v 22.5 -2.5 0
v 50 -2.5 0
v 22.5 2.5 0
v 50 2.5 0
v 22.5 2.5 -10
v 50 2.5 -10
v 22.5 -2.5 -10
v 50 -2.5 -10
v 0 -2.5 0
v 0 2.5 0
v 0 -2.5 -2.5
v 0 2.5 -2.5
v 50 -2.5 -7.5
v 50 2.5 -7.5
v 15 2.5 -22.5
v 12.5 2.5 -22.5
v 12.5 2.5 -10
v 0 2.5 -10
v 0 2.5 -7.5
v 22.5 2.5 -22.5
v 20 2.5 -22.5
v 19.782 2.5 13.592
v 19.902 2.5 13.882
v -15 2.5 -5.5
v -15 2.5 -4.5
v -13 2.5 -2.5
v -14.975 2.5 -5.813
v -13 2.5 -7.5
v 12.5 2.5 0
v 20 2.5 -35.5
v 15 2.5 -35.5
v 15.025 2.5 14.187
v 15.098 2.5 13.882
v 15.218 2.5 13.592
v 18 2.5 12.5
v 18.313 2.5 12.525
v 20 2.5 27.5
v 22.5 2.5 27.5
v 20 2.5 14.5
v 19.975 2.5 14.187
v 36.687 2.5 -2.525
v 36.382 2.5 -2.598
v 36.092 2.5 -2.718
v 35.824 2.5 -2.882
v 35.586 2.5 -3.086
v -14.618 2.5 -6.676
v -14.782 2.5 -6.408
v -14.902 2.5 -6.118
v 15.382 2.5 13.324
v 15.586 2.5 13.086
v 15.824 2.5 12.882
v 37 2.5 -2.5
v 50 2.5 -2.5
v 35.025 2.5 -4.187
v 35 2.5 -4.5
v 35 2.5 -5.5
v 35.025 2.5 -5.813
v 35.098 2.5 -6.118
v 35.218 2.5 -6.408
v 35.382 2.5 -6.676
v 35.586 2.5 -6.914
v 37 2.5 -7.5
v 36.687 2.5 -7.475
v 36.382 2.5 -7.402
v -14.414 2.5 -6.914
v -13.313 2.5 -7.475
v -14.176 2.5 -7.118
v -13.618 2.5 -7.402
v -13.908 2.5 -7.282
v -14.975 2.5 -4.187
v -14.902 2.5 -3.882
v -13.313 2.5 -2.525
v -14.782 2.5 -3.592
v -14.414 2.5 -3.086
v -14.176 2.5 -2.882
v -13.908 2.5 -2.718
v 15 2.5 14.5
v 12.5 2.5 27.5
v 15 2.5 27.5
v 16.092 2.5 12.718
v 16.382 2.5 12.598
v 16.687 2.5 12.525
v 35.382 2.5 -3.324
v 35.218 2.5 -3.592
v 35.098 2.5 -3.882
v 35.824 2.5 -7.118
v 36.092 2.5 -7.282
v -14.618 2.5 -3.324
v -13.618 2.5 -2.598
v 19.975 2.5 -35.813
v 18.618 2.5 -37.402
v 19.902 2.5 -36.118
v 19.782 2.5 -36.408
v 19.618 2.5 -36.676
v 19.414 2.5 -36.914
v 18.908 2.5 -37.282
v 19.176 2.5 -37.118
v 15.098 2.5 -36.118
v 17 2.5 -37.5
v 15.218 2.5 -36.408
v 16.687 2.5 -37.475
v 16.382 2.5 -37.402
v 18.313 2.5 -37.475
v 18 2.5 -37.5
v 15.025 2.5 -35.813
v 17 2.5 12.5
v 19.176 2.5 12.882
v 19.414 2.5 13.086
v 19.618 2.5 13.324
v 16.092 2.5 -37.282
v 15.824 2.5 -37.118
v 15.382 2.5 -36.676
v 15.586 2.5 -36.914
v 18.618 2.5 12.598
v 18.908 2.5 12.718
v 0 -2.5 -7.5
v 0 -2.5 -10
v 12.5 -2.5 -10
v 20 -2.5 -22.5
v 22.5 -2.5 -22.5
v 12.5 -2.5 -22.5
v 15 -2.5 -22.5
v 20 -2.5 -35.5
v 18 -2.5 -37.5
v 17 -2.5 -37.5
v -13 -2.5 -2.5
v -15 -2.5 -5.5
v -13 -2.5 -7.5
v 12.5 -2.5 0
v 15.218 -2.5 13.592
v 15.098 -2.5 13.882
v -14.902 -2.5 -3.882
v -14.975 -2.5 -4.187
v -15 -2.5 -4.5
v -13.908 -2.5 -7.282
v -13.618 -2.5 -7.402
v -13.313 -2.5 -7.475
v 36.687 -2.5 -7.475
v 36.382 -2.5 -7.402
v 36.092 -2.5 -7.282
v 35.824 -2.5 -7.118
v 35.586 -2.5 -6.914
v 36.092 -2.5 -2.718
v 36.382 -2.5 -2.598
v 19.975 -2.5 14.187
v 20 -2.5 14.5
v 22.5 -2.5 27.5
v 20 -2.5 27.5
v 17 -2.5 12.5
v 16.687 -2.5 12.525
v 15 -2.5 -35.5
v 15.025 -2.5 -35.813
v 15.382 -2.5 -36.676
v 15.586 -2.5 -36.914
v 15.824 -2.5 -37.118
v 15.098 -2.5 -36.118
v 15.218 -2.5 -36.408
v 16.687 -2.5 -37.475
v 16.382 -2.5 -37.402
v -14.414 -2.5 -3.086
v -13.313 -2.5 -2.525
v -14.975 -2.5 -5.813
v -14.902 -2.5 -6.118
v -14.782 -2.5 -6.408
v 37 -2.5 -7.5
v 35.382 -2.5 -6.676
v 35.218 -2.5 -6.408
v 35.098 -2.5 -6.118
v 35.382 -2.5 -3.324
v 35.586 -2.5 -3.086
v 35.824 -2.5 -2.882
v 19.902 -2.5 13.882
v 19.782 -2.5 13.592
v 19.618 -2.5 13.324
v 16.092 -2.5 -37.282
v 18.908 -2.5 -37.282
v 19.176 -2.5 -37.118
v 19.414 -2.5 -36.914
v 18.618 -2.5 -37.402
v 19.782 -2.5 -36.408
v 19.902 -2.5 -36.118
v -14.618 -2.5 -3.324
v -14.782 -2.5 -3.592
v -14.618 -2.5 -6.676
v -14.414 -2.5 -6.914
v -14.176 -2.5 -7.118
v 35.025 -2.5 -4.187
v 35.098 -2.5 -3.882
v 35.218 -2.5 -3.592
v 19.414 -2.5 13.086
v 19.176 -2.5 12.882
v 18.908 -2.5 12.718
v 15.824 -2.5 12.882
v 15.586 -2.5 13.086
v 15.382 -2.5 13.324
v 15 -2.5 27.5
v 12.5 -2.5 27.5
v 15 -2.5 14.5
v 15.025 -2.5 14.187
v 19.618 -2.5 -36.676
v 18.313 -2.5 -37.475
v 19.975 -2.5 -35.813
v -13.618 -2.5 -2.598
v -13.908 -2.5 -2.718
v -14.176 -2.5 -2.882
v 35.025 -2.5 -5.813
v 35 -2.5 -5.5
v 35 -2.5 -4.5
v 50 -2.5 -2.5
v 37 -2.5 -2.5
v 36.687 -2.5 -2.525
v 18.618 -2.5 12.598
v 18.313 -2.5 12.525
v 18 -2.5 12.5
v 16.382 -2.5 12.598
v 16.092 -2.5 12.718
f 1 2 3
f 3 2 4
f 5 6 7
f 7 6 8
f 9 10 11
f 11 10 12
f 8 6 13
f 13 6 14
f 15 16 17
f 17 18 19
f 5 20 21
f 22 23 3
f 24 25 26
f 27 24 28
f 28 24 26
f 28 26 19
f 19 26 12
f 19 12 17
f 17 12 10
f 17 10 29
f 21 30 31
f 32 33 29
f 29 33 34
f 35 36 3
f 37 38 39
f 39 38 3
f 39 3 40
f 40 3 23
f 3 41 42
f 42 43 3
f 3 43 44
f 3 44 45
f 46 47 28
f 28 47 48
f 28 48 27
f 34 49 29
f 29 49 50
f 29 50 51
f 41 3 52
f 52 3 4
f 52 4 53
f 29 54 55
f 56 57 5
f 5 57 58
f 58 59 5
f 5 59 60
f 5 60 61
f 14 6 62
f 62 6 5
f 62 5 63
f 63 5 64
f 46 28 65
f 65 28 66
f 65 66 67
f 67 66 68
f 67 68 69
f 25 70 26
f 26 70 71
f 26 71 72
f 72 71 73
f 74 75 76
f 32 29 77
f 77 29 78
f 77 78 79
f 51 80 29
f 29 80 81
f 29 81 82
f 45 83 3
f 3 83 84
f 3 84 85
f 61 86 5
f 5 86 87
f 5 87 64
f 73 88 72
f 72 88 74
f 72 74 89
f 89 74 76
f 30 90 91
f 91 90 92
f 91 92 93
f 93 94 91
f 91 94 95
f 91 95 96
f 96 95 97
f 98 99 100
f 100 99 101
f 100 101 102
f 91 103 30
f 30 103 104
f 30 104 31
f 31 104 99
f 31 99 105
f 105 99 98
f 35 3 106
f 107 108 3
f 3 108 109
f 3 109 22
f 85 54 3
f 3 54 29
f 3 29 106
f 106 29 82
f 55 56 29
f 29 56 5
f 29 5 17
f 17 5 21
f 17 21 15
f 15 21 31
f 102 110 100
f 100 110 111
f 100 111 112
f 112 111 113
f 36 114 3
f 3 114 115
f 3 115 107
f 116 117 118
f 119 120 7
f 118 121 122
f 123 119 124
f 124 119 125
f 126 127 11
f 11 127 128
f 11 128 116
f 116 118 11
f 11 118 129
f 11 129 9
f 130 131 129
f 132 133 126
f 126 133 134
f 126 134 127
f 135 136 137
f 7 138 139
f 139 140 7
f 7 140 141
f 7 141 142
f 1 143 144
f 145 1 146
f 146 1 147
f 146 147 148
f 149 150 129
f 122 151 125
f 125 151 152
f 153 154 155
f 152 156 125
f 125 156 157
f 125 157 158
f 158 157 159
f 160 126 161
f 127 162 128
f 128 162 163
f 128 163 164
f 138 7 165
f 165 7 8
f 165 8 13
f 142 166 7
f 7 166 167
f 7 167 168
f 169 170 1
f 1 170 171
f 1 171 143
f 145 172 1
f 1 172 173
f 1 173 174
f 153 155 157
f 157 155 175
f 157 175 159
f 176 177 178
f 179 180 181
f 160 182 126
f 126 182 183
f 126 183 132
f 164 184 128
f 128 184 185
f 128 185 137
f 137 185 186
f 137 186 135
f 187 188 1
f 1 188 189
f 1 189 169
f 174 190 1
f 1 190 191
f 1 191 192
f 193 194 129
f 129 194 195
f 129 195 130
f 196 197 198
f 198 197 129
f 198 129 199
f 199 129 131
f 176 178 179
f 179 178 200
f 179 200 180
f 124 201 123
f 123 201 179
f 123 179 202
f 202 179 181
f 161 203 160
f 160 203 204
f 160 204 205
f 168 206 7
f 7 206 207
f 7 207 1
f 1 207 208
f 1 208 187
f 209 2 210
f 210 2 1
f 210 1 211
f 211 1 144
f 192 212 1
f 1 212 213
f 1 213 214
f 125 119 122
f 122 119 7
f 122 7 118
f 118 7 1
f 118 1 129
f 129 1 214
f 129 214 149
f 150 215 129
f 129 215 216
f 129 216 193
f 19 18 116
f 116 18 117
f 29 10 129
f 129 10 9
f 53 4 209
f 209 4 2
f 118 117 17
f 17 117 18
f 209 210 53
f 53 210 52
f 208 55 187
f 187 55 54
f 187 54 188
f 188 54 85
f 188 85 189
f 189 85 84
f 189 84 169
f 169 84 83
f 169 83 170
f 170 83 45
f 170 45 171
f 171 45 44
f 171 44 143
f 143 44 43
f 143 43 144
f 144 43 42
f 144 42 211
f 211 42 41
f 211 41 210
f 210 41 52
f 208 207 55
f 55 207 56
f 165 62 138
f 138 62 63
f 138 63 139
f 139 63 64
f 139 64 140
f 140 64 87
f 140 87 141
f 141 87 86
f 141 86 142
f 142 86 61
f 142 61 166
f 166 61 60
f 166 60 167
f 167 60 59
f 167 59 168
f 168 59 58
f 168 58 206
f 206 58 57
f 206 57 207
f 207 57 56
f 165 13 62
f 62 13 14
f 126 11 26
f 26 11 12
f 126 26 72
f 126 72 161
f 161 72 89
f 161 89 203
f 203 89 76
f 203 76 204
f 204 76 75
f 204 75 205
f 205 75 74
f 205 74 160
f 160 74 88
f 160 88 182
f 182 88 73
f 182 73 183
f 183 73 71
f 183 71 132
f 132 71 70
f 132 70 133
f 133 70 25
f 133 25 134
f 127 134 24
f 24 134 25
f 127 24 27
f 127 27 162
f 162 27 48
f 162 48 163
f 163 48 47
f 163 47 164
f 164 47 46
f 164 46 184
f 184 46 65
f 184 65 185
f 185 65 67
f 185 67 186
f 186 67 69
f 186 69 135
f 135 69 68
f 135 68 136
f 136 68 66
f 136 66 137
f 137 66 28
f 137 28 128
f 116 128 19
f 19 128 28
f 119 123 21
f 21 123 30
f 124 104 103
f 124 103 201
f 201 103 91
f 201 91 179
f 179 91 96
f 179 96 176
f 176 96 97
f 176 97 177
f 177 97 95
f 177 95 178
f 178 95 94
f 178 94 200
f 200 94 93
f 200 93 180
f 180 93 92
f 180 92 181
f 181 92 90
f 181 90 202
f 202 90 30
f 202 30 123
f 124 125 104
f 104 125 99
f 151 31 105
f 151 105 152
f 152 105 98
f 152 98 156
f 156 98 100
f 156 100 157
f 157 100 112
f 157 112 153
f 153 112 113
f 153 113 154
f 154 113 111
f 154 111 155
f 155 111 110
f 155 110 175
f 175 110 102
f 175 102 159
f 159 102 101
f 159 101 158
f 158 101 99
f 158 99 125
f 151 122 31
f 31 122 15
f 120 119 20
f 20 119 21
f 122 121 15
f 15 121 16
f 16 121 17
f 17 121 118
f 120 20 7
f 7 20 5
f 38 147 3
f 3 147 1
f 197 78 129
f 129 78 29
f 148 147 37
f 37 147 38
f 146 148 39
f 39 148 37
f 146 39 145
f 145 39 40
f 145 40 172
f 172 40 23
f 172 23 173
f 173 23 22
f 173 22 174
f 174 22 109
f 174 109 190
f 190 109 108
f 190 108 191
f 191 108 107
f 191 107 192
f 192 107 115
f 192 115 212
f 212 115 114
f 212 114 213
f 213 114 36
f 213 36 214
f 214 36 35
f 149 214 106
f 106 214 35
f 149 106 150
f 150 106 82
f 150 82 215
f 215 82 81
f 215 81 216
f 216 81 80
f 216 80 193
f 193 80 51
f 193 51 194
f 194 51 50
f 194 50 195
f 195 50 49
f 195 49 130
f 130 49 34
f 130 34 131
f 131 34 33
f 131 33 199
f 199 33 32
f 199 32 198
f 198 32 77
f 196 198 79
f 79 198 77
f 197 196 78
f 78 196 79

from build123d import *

# Parameters (mm, degrees)
CROQUIS1_W              = 50
CROQUIS1_H              = 10
SALIENTE_EXTRUIR1_DEPTH = 2.5
CORTAR_EXTRUIR1_DEPTH   = 52.23475383
SALIENTE_EXTRUIR2_DEPTH = 5
SALIENTE_EXTRUIR3_DEPTH = 5


with BuildPart() as part:
    # Croquis1 → Saliente-Extruir1 (new, symmetric)
    with BuildSketch(Plane(origin=(0, 0, 0), x_dir=(1, 0, 0), z_dir=(0, 1, 0))):
        with Locations((25, 5)):
            Rectangle(CROQUIS1_W, CROQUIS1_H)
    extrude(amount=SALIENTE_EXTRUIR1_DEPTH, both=True)

    # Croquis2 → Cortar-Extruir1 (cut, through all)
    with BuildSketch(Plane(origin=(0, 2.5, 0), x_dir=(1, 0, 0), z_dir=(0, 1, 0))):
        with BuildLine():
            Line((50, 7.5), (37, 7.5))
            ThreePointArc((37, 7.5), (35.585786438, 6.914213562), (35, 5.5))
            Line((35, 5.5), (35, 4.5))
            ThreePointArc((35, 4.5), (35.585786438, 3.085786438), (37, 2.5))
            Line((37, 2.5), (50, 2.5))
            Line((50, 2.5), (50, 7.5))
        make_face()
    extrude(amount=-CORTAR_EXTRUIR1_DEPTH, mode=Mode.SUBTRACT)

    # Croquis3 → Saliente-Extruir2 (add)
    with BuildSketch(Plane(origin=(0, 2.5, 0), x_dir=(1, 0, 0), z_dir=(0, 1, 0))):
        with BuildLine():
            Line((0, 2.5), (-13, 2.5))
            ThreePointArc((-13, 2.5), (-14.414213562, 3.085786438), (-15, 4.5))
            Line((-15, 4.5), (-15, 5.5))
            ThreePointArc((-15, 5.5), (-14.414213562, 6.914213562), (-13, 7.5))
            Line((-13, 7.5), (0, 7.5))
            Line((0, 7.5), (0, 2.5))
        make_face()
    extrude(amount=-SALIENTE_EXTRUIR2_DEPTH)

    # Croquis4 → Saliente-Extruir3 (add)
    with BuildSketch(Plane(origin=(0, 2.5, 0), x_dir=(1, 0, 0), z_dir=(0, 1, 0))):
        with BuildLine():
            Line((17, 37.5), (18, 37.5))
            ThreePointArc((18, 37.5), (19.414213562, 36.914213562), (20, 35.5))
            Line((20, 35.5), (20, 22.5))
            Line((20, 22.5), (22.5, 22.5))
            Line((22.5, 22.5), (22.5, -27.5))
            Line((22.5, -27.5), (20, -27.5))
            Line((20, -27.5), (20, -14.5))
            ThreePointArc((20, -14.5), (19.414213562, -13.085786438), (18, -12.5))
            Line((18, -12.5), (17, -12.5))
            ThreePointArc((17, -12.5), (15.585786438, -13.085786438), (15, -14.5))
            Line((15, -14.5), (15, -27.5))
            Line((15, -27.5), (12.5, -27.5))
            Line((12.5, -27.5), (12.5, 22.5))
            Line((12.5, 22.5), (15, 22.5))
            Line((15, 22.5), (15, 35.5))
            ThreePointArc((15, 35.5), (15.585786438, 36.914213562), (17, 37.5))
        make_face()
    extrude(amount=-SALIENTE_EXTRUIR3_DEPTH)


solid = part.part
